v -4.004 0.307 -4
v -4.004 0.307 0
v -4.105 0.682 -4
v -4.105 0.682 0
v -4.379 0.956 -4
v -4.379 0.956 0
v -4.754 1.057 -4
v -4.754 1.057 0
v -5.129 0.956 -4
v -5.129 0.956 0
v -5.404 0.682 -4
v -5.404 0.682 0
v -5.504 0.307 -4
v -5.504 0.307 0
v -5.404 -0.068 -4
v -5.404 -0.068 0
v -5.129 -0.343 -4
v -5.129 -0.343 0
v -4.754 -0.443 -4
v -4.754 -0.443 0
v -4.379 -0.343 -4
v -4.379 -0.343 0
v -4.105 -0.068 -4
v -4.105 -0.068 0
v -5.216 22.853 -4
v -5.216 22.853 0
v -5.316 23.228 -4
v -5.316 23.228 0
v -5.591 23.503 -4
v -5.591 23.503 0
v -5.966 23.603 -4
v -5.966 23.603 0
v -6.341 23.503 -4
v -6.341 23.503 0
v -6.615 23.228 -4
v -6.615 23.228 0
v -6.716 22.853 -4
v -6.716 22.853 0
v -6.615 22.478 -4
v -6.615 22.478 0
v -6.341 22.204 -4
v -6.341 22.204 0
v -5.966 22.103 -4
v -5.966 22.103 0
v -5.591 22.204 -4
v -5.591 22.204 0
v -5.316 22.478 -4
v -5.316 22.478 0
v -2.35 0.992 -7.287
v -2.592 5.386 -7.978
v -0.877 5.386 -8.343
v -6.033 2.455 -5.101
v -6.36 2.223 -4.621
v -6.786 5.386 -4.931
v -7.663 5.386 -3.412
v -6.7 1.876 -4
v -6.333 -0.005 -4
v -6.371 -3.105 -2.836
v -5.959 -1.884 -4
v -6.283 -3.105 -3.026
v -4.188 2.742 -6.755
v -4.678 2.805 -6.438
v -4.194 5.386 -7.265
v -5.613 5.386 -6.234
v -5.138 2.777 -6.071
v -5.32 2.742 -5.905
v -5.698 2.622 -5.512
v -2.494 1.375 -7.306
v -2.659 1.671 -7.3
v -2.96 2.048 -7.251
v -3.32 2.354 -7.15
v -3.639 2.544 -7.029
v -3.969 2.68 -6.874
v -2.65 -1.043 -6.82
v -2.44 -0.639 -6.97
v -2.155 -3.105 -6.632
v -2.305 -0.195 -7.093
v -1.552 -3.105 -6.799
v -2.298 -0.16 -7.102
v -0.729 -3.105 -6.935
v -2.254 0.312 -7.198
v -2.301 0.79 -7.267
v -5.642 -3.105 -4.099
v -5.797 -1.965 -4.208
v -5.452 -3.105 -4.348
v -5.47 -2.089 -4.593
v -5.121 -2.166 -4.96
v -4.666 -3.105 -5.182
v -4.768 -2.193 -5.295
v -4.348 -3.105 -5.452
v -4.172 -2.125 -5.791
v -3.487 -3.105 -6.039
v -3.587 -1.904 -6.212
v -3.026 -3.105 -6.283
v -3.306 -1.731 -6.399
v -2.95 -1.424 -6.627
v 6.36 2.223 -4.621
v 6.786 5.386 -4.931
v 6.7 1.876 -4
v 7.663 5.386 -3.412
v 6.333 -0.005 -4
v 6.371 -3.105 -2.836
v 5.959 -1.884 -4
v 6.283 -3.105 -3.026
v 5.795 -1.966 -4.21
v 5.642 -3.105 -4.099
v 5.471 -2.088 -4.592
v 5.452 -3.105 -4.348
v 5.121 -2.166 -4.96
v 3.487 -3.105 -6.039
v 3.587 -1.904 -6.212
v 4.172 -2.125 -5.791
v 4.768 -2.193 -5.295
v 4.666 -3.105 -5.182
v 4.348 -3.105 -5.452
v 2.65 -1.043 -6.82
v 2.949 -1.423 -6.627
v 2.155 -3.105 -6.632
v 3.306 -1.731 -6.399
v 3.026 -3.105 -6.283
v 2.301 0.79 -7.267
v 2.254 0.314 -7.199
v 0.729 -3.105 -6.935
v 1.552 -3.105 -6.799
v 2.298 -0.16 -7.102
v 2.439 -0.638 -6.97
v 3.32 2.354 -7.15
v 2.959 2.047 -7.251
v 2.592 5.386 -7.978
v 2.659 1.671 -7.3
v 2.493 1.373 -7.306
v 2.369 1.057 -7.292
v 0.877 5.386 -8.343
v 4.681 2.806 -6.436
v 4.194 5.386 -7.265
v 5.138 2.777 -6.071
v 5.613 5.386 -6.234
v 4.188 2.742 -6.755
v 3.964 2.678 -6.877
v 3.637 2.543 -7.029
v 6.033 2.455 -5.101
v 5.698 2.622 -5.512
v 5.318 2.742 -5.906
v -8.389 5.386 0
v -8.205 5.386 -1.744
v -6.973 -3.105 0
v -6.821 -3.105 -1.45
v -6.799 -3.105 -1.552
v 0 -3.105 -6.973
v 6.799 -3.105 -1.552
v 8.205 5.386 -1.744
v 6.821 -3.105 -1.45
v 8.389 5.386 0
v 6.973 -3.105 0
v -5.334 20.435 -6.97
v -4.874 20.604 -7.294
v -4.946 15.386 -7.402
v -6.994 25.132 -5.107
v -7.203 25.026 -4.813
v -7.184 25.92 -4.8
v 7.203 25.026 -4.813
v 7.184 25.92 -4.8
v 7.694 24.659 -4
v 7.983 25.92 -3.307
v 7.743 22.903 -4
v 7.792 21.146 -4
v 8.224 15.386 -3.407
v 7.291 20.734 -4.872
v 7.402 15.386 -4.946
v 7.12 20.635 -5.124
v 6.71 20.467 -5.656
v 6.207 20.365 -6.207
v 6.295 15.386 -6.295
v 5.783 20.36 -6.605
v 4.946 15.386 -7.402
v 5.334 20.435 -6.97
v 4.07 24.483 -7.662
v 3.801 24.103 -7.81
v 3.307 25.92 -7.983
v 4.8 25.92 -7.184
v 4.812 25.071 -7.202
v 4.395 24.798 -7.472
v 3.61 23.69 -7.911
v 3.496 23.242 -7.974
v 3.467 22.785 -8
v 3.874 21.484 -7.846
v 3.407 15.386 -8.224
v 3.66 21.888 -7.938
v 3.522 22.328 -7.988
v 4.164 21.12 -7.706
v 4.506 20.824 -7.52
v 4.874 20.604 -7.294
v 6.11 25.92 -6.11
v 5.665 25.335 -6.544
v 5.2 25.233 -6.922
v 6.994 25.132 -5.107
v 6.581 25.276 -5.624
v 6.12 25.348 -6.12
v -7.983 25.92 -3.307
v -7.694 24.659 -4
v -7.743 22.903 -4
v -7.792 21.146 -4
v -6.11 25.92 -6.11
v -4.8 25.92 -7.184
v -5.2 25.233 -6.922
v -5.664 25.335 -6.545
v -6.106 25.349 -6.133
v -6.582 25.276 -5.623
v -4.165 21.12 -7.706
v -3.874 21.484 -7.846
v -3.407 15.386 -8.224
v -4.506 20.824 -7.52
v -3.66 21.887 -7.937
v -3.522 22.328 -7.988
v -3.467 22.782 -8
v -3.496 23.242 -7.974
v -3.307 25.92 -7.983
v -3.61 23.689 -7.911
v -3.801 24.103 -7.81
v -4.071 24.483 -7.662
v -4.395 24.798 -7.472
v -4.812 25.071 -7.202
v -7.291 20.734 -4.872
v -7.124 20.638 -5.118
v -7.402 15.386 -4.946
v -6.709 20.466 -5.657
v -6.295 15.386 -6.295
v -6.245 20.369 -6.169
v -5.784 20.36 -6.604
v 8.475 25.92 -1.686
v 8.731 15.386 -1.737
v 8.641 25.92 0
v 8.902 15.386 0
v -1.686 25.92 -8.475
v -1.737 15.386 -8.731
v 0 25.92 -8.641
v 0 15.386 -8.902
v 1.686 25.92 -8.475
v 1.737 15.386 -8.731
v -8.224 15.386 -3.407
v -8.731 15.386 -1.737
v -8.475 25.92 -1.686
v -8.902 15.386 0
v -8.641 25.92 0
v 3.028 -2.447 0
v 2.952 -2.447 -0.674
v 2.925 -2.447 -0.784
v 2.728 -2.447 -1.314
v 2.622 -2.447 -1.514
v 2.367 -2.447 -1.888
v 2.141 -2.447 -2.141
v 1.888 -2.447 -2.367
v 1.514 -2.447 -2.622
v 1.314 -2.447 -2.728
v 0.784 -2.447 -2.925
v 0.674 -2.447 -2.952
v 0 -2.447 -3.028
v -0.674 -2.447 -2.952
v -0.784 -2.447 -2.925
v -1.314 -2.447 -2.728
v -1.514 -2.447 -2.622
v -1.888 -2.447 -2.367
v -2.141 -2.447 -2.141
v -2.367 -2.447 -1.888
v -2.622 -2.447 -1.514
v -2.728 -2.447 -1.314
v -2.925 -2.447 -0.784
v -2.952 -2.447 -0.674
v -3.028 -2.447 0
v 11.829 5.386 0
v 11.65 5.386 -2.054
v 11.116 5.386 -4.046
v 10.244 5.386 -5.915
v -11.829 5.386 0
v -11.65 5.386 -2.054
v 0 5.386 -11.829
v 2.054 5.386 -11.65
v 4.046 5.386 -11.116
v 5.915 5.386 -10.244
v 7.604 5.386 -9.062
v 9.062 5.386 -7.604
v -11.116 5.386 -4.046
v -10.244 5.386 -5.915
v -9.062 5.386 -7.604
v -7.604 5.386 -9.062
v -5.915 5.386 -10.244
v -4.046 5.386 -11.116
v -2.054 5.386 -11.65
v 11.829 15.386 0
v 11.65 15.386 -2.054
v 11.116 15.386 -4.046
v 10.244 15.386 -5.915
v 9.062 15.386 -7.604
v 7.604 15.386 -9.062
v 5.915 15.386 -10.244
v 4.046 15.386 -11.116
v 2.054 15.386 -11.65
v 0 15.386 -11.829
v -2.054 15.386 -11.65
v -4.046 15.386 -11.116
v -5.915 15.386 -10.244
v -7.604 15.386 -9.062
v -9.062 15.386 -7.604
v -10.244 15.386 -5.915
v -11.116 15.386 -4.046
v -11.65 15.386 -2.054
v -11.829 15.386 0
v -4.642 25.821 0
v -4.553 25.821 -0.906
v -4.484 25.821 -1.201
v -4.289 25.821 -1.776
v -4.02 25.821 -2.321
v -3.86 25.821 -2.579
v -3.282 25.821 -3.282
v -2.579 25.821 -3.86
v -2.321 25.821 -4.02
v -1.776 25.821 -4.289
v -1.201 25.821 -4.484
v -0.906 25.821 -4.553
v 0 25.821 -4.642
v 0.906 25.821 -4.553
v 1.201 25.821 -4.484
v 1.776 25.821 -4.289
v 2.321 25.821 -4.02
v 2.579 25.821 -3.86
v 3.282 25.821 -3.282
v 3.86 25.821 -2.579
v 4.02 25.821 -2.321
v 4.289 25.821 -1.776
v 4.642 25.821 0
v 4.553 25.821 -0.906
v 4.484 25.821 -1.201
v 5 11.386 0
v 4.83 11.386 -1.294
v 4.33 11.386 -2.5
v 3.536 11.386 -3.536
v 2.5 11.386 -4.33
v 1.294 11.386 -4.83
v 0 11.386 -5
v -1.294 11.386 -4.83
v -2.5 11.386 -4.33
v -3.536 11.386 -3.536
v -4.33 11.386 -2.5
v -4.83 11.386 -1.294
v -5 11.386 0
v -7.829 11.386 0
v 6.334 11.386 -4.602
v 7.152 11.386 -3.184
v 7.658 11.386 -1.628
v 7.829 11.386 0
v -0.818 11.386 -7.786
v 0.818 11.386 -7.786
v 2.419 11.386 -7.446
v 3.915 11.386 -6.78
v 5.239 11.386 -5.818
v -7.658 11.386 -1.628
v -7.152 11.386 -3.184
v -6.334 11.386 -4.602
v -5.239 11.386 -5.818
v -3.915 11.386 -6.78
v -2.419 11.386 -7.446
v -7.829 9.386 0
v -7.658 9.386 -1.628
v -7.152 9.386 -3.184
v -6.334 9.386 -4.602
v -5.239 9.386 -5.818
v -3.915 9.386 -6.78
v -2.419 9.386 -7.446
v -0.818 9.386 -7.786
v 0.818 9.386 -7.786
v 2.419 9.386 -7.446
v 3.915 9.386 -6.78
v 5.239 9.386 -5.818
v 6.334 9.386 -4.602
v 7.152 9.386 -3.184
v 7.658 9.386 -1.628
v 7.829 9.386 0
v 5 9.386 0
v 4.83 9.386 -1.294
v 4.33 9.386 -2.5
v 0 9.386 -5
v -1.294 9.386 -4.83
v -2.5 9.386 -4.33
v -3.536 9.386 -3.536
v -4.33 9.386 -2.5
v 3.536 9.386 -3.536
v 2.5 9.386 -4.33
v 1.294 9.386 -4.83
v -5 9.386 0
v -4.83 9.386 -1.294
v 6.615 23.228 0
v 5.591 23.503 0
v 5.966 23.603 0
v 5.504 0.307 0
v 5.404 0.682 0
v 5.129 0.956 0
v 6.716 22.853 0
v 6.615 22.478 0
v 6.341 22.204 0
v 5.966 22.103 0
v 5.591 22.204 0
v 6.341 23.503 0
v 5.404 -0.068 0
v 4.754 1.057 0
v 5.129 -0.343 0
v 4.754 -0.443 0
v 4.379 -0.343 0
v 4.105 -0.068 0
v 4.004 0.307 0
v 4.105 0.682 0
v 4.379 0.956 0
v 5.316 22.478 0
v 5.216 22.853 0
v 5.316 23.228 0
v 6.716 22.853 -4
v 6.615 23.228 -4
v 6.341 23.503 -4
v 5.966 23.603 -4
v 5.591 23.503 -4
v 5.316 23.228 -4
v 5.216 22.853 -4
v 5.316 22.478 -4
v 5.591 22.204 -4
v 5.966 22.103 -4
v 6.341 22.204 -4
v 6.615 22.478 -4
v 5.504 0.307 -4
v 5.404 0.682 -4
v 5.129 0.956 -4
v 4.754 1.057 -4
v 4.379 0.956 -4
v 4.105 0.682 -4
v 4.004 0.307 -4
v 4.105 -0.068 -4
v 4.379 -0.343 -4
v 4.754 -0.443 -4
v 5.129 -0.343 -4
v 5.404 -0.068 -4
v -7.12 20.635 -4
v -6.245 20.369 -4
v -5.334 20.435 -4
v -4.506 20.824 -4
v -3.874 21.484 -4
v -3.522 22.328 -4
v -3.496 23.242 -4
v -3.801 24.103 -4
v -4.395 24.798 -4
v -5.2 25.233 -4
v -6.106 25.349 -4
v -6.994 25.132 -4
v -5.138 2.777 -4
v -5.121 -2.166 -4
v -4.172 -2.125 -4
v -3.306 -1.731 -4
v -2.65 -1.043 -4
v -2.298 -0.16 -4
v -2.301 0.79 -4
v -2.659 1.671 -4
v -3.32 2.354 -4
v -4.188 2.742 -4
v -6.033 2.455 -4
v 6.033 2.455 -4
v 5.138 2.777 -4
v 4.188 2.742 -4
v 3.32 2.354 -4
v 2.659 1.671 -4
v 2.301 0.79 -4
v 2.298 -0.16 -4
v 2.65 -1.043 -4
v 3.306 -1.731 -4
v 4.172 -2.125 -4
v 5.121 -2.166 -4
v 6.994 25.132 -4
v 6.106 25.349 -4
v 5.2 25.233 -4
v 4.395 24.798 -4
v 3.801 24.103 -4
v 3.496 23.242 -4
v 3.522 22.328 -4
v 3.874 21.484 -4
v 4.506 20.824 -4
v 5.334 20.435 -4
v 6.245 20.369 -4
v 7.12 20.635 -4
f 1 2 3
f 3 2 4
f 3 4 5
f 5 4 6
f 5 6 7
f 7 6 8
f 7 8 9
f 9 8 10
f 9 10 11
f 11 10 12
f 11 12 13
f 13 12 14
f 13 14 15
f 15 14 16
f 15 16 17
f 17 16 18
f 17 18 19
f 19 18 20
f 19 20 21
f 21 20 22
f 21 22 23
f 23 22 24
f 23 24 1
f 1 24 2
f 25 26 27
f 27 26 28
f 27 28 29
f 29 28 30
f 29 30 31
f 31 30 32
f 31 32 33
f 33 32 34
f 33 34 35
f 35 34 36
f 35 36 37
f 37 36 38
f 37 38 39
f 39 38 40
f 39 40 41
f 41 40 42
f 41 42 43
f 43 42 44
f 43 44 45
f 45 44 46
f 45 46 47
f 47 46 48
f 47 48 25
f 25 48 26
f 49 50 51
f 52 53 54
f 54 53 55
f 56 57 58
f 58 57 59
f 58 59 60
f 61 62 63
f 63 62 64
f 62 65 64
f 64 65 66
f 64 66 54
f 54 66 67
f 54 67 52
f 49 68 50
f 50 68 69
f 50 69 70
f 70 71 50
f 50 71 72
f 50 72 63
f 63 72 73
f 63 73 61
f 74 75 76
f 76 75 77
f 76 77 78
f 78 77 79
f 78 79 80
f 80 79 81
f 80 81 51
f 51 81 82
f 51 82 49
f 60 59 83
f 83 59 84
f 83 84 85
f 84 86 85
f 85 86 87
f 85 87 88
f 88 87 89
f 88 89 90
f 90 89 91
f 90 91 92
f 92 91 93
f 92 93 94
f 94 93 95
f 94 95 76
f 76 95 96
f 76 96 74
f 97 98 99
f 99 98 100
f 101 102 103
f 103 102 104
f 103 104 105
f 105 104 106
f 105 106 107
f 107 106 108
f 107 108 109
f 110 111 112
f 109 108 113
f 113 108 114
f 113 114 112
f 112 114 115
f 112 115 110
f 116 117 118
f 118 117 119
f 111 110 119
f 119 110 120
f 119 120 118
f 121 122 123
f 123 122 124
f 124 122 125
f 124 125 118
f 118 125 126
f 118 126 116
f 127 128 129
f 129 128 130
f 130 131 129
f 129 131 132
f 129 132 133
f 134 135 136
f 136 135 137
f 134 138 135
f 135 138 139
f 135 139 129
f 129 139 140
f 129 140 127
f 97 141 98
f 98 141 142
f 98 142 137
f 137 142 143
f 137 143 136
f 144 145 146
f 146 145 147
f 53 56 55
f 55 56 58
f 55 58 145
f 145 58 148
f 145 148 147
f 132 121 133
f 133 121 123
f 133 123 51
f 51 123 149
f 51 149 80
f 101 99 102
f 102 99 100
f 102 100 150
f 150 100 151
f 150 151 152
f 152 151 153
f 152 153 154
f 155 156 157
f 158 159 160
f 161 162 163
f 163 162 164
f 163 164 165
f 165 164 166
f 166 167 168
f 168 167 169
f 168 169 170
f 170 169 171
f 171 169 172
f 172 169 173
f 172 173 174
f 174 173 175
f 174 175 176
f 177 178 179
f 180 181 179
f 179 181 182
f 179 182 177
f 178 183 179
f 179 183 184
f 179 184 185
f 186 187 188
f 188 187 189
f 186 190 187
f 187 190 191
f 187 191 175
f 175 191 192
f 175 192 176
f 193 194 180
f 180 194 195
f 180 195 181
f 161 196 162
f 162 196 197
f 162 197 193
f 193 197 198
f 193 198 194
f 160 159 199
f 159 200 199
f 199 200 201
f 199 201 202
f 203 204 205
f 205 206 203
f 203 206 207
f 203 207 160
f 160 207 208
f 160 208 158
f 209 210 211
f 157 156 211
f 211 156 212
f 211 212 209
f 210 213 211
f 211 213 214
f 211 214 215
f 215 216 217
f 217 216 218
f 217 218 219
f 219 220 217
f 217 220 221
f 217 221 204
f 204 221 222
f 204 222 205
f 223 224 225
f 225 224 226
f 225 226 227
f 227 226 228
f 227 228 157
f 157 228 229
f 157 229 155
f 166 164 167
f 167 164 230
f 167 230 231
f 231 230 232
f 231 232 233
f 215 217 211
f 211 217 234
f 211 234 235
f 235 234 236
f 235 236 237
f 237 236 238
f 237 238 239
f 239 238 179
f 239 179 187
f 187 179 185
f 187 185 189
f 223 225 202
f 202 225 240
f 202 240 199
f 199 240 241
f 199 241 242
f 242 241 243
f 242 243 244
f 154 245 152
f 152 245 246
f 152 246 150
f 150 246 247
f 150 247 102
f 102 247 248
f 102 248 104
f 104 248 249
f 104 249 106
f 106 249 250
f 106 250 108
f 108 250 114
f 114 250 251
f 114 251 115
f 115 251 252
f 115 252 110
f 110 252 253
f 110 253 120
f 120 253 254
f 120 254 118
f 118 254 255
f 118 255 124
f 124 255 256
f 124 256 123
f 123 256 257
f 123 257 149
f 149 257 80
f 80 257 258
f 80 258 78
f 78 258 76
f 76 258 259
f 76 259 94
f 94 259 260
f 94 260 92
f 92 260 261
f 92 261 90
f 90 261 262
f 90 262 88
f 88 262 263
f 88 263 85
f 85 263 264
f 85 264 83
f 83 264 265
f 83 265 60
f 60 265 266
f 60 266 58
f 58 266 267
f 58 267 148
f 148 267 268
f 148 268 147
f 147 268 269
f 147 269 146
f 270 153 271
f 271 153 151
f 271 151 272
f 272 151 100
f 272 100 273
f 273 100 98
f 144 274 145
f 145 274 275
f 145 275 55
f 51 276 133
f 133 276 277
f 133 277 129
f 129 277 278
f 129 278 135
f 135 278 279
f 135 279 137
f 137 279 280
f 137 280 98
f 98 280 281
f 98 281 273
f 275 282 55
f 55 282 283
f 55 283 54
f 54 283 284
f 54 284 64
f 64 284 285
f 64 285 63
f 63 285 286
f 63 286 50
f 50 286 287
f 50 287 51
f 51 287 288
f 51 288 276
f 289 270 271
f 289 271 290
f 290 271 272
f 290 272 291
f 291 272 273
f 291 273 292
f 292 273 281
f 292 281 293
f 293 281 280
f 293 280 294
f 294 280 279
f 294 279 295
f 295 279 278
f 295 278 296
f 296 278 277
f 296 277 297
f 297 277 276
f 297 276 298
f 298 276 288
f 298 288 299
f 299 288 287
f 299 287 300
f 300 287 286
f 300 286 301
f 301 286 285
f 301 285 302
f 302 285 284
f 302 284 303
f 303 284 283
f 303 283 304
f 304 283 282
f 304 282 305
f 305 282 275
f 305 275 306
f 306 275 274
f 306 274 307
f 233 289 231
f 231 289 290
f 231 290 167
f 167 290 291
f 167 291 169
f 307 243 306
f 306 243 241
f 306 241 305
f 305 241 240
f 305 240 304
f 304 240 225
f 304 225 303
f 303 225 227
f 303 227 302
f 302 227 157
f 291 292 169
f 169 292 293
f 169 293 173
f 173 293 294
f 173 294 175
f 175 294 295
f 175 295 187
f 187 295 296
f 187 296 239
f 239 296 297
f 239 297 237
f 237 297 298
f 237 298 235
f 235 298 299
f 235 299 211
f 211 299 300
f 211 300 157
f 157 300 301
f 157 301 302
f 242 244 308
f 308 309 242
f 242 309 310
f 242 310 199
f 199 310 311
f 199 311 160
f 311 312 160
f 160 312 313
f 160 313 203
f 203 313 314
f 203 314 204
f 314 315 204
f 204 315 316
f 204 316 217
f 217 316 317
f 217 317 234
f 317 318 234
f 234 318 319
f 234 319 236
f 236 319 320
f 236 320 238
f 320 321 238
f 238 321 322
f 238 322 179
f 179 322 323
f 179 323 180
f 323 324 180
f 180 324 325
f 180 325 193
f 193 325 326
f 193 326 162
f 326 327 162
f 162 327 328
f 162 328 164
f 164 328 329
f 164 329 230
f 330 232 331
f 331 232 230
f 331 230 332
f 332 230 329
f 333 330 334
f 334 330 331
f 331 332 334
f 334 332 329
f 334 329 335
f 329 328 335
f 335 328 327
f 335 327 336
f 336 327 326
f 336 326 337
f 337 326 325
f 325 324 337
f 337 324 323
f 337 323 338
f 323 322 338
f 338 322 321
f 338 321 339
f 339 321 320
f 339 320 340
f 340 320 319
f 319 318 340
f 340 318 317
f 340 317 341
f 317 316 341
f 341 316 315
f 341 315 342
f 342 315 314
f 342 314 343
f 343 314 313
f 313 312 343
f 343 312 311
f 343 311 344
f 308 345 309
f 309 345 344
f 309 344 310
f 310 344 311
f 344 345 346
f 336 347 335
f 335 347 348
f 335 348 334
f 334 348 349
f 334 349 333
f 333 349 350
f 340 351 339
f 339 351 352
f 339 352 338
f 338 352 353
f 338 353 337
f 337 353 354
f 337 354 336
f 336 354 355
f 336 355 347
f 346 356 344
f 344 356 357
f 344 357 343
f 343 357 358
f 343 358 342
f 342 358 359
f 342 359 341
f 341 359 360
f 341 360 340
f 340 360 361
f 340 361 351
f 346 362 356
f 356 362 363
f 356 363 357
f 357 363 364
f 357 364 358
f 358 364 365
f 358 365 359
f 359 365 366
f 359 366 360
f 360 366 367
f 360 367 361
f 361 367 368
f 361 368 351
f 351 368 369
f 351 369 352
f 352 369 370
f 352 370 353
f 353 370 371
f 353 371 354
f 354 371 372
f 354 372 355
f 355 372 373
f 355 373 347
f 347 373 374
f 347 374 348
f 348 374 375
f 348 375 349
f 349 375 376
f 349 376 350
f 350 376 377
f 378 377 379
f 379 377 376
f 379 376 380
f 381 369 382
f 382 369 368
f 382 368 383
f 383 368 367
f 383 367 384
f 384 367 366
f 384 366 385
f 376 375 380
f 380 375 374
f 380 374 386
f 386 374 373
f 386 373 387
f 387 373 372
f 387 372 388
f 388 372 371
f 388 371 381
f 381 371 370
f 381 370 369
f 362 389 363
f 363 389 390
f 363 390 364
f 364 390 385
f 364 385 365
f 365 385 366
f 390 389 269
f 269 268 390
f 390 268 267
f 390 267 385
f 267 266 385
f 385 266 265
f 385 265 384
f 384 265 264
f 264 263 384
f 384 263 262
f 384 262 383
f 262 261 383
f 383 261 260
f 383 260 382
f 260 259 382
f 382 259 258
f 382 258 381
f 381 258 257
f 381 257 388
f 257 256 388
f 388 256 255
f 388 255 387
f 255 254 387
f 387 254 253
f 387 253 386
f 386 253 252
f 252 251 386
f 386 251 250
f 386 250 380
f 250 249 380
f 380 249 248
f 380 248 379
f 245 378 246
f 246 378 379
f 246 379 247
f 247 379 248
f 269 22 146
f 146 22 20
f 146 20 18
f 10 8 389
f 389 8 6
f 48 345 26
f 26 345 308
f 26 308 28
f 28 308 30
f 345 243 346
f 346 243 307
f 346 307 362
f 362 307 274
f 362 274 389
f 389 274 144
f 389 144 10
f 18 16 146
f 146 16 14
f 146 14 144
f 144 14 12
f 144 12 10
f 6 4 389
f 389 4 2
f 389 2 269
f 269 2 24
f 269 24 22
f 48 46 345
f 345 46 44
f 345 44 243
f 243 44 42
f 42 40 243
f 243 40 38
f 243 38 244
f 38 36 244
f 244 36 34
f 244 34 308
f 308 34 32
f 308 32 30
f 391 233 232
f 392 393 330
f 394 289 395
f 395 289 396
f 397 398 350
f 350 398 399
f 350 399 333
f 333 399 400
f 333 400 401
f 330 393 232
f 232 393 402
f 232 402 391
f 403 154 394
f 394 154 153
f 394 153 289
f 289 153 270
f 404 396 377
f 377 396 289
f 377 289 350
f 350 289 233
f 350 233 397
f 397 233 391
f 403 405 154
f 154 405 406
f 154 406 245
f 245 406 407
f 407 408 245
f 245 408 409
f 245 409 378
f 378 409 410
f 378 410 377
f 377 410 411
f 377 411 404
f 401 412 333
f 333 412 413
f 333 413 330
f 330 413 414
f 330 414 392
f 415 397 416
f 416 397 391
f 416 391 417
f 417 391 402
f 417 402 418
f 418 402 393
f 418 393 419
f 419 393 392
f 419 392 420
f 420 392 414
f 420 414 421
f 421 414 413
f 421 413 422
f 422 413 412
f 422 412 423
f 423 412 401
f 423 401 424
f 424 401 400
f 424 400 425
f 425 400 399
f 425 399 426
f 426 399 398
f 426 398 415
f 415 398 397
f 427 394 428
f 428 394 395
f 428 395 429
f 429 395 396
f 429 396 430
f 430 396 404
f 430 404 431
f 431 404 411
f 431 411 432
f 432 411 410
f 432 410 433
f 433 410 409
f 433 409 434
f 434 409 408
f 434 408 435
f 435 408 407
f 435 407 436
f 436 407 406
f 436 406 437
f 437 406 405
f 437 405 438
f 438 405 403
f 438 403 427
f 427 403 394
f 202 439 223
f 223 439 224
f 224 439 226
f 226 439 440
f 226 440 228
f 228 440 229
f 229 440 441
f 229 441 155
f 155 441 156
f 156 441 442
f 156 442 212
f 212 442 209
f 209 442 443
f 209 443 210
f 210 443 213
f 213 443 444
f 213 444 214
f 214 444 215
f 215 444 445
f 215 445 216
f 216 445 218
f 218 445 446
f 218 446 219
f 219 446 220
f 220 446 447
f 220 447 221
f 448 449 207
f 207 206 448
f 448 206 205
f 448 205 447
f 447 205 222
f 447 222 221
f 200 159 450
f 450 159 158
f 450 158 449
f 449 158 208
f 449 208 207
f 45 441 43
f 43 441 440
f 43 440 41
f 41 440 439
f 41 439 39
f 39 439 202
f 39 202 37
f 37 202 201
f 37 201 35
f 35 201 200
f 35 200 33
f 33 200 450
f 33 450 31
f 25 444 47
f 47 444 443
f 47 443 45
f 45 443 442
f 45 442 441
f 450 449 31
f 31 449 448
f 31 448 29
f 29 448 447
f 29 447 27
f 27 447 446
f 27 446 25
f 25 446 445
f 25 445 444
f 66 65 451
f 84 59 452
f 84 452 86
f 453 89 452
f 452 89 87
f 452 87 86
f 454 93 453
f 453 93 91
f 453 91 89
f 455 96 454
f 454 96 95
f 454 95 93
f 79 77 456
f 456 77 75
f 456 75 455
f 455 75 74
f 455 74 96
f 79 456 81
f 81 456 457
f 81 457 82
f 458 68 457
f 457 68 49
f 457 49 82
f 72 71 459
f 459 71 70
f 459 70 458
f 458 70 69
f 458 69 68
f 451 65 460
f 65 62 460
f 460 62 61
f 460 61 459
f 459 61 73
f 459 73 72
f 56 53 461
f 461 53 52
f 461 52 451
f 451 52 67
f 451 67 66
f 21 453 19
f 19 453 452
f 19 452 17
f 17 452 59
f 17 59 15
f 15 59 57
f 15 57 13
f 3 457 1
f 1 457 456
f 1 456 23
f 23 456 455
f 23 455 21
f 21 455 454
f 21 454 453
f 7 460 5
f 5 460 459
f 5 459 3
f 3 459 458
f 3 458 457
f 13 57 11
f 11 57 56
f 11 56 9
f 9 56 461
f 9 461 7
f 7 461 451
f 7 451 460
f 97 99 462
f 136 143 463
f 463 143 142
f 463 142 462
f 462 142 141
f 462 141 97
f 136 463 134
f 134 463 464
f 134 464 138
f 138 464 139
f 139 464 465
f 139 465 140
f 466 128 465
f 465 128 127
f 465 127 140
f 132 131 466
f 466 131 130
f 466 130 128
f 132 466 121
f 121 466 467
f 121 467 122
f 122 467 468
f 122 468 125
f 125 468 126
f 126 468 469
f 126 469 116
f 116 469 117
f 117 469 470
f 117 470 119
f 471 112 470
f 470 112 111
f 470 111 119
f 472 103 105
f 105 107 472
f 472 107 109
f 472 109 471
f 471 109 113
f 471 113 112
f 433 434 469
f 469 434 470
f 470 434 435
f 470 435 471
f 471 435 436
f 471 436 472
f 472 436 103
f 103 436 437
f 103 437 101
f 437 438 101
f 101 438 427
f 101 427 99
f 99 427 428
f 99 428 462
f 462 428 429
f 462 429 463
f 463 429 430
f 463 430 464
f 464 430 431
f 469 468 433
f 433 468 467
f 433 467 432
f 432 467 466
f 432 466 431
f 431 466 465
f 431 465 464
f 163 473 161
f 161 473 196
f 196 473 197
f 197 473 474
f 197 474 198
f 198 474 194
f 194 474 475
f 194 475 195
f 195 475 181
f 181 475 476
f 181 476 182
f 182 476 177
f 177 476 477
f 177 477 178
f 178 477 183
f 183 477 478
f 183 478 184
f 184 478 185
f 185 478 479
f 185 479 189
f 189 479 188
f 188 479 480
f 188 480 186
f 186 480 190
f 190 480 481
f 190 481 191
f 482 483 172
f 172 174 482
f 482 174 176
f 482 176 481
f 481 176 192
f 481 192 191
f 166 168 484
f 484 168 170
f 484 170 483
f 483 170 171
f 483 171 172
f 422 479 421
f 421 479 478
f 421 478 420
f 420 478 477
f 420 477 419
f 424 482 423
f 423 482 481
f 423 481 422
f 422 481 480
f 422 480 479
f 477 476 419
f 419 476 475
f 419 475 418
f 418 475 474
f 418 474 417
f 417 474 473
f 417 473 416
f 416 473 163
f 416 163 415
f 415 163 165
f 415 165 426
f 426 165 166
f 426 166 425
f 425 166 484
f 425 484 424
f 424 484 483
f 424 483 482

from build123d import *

# Parameters (mm, degrees)
REVOLVE1_ANGLE     = 180
SKETCH27_R         = 0.75
CUT_EXTRUDE5_DEPTH = 31.850211464
CUT_EXTRUDE6_START = -4
SKETCH27_5_R       = 2.5
SKETCH27_5_R_2     = 0.75
CUT_EXTRUDE6_DEPTH = 10


with BuildPart() as part:
    # Sketch1 → Revolve1 (revolve)
    with BuildSketch(Plane.XY):
        Polygon((6.973429247, -3.10464929), (8.388508538, 5.385826457), (11.829278376, 5.385826457), (11.829278376, 15.385826457), (8.901993981, 15.385826457), (8.640637377, 25.920491769), (4.641867801, 25.8212855), (4.999999973, 11.385826457), (7.829278376, 11.385826457), (7.829278376, 9.385826457), (5.000000185, 9.385826457), (3.027853552, -2.447053341), align=None)
    revolve(axis=Axis((0, 0, 0), (0, 1, 0)), revolution_arc=REVOLVE1_ANGLE)

    # Sketch27 → Cut-Extrude5 (cut, through all)
    with BuildSketch(Plane.XY):
        with Locations((5.965887995, 22.853210278)):
            Circle(SKETCH27_R)
        with Locations((-5.965887995, 22.853210278)):
            Circle(SKETCH27_R)
        with Locations((4.754042918, 0.306629697)):
            Circle(SKETCH27_R)
        with Locations((-4.754042918, 0.306629697)):
            Circle(SKETCH27_R)
    extrude(amount=-CUT_EXTRUDE5_DEPTH, mode=Mode.SUBTRACT)

    # Sketch27<5> → Cut-Extrude6 (cut)
    # profile 1 of 4: a face of its own
    with BuildSketch(Plane.XY.offset(CUT_EXTRUDE6_START)):
        with Locations((5.965887995, 22.853210278)):
            Circle(SKETCH27_5_R)
        with Locations((5.965887995, 22.853210278)):
            Circle(SKETCH27_5_R_2, mode=Mode.SUBTRACT)
    # profile 2 of 4: a face of its own
    with BuildSketch(Plane.XY.offset(CUT_EXTRUDE6_START)):
        with Locations((-5.965887995, 22.853210278)):
            Circle(SKETCH27_5_R)
        with Locations((-5.965887995, 22.853210278)):
            Circle(SKETCH27_5_R_2, mode=Mode.SUBTRACT)
    # profile 3 of 4: a face of its own
    with BuildSketch(Plane.XY.offset(CUT_EXTRUDE6_START)):
        with Locations((4.754042918, 0.306629697)):
            Circle(SKETCH27_5_R)
        with Locations((4.754042918, 0.306629697)):
            Circle(SKETCH27_5_R_2, mode=Mode.SUBTRACT)
    # profile 4 of 4: a face of its own
    with BuildSketch(Plane.XY.offset(CUT_EXTRUDE6_START)):
        with Locations((-4.754042918, 0.306629697)):
            Circle(SKETCH27_5_R)
        with Locations((-4.754042918, 0.306629697)):
            Circle(SKETCH27_5_R_2, mode=Mode.SUBTRACT)
    extrude(amount=-CUT_EXTRUDE6_DEPTH, mode=Mode.SUBTRACT)


solid = part.part
